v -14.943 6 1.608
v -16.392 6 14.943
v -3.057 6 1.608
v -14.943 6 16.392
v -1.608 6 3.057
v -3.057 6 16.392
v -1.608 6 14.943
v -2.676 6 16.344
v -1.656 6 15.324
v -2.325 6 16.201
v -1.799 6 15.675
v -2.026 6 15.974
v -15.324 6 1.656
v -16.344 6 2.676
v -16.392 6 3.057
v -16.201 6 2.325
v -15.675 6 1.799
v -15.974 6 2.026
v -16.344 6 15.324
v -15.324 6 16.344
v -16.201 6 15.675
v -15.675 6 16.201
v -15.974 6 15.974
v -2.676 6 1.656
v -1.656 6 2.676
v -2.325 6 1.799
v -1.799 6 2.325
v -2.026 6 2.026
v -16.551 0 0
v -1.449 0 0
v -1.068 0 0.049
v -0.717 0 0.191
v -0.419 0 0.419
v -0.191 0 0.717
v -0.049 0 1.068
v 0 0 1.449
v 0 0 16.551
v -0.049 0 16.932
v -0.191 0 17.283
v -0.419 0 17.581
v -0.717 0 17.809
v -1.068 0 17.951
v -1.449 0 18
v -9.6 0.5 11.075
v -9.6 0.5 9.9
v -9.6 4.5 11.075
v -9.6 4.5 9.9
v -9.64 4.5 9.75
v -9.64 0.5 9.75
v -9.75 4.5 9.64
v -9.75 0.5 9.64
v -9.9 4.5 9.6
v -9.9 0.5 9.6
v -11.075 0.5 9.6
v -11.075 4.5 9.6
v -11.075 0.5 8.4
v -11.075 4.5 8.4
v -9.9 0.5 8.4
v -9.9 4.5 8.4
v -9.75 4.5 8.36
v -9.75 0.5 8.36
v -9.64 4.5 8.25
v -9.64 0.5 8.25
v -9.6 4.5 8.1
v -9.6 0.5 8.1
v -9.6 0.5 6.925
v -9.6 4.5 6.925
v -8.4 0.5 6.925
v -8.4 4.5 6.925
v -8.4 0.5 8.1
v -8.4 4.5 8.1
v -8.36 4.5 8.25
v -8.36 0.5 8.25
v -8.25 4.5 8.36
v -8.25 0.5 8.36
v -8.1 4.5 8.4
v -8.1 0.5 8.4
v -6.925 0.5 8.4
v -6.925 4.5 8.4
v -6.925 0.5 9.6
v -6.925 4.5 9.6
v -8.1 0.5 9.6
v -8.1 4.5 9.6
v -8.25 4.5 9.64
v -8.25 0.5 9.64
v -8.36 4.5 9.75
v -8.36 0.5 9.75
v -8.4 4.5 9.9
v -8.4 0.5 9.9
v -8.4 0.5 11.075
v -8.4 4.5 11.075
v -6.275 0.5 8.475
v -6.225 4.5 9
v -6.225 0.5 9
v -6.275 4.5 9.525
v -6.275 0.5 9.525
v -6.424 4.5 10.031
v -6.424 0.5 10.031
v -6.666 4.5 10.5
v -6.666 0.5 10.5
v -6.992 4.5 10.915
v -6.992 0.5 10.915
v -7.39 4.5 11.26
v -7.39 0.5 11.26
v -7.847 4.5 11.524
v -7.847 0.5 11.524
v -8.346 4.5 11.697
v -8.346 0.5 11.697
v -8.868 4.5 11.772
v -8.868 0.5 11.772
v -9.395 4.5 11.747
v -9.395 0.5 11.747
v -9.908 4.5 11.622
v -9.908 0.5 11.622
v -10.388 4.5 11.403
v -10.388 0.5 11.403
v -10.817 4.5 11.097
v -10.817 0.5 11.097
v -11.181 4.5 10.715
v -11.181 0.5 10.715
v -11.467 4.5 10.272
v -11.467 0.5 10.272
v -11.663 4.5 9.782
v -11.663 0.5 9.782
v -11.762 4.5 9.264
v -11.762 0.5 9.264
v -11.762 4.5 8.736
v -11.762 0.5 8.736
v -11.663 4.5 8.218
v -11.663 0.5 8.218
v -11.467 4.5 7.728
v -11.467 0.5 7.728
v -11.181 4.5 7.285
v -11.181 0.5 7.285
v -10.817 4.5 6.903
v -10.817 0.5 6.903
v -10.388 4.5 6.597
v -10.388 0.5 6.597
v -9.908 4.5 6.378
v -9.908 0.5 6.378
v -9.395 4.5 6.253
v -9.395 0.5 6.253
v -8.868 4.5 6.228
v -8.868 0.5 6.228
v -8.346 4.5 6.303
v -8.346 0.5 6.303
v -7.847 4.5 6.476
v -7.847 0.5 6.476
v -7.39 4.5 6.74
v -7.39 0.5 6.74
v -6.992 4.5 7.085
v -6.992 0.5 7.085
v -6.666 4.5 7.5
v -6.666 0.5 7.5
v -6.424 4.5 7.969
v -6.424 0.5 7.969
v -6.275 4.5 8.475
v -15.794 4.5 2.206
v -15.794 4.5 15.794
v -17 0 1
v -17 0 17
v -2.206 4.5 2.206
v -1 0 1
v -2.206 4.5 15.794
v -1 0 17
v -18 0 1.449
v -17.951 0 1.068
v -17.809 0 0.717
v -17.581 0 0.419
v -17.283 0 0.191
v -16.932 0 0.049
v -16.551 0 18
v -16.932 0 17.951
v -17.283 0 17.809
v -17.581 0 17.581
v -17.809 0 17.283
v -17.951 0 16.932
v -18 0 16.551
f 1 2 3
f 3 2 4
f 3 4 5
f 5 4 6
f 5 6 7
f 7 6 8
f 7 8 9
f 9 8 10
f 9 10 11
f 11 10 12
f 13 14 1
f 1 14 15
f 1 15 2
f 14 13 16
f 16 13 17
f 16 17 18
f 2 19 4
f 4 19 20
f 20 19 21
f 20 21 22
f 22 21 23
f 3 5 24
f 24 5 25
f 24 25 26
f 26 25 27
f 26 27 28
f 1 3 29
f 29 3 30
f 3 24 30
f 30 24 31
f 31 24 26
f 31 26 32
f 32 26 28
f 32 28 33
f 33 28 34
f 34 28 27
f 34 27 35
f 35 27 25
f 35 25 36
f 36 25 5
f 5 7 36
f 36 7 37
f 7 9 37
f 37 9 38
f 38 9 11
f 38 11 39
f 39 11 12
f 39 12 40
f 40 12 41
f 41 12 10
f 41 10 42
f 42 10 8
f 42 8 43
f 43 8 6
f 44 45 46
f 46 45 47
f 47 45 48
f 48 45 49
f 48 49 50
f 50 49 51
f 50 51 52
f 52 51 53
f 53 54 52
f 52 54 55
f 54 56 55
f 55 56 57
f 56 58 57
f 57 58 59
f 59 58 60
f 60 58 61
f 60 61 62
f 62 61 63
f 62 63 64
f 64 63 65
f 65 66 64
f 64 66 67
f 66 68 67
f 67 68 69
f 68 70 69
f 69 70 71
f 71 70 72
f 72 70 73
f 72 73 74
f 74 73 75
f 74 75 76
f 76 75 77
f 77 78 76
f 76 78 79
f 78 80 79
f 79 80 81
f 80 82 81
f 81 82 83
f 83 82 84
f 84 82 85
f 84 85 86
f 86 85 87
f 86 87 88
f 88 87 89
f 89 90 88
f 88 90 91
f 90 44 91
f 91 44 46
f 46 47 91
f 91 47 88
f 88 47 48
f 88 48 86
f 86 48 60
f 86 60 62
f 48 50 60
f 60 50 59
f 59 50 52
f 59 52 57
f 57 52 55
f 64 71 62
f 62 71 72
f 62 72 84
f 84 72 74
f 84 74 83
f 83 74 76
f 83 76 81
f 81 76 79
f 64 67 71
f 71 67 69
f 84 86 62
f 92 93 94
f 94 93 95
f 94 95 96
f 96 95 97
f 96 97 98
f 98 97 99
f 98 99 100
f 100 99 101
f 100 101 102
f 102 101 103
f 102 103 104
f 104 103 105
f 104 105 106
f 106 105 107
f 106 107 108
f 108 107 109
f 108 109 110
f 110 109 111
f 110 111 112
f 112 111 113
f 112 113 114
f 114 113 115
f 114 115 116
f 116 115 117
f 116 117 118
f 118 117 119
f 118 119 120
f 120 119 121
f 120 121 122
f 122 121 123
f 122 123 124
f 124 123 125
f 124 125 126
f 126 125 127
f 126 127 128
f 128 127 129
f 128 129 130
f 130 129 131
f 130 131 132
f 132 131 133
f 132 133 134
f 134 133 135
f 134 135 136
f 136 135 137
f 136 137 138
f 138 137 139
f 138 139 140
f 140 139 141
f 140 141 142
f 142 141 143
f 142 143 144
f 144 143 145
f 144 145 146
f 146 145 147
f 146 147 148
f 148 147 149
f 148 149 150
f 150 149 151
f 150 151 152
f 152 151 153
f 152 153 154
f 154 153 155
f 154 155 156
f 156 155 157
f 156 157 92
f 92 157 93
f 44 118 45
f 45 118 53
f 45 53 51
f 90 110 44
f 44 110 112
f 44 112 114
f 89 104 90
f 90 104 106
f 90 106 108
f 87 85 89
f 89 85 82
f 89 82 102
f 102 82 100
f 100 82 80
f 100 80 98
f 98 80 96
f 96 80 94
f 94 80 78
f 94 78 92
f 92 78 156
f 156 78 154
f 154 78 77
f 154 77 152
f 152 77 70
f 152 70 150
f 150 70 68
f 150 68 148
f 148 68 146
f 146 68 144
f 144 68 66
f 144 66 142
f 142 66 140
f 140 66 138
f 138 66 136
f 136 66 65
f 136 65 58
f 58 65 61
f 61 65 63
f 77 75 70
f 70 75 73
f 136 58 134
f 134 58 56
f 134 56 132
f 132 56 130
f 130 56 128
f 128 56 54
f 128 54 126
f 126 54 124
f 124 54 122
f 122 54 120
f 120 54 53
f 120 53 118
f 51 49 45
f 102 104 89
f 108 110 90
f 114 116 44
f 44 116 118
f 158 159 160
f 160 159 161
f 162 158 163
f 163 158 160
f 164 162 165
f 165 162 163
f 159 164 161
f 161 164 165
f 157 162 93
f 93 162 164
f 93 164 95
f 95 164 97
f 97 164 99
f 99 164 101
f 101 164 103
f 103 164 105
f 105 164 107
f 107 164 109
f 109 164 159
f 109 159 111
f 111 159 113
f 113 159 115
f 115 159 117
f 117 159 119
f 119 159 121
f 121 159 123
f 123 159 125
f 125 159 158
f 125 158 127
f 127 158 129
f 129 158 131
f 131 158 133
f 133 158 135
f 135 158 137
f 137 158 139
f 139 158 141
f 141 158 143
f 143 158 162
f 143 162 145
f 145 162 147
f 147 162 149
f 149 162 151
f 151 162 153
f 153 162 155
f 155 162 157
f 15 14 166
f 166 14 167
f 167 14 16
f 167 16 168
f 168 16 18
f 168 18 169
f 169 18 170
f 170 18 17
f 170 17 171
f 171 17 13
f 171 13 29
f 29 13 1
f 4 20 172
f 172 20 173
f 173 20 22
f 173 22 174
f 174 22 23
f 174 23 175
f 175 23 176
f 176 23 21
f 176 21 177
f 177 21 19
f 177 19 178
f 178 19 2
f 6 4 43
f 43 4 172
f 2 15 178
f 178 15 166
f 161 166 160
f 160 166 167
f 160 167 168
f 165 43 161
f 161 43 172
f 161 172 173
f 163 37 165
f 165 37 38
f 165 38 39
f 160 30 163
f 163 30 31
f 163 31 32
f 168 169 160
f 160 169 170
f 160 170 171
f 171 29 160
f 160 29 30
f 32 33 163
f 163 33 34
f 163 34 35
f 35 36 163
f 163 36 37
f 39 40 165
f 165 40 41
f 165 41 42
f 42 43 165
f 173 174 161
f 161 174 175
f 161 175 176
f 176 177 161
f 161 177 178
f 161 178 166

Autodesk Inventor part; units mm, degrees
ref_plane "YZ Plane" through (0, 0, 0) normal (1, 0, 0) x (0, 1, 0)
ref_plane "XZ Plane" through (0, 0, 0) normal (0, 1, 0) x (-1, 0, 0)
sketch "Sketch1" plane through (0, 0, 0) normal (0, 1, 0) x (-1, 0, 0)
  line L0 (0, 0) -> (18, 0)
  line L1 (18, 0) -> (18, 18)
  line L2 (18, 18) -> (0, 18)
  line L3 (0, 18) -> (0, 0)
  dimension "d0" = 18
  dimension "d1" = 18
extrude "Extrusion1" add sketch "Sketch1" along normal blind 8 draft -15
fillet "Fillet1" radius 1.5 8 edges at (-1.0718, 4, 16.9282) (-9, 8, 15.8564) (-2.1436, 8, 9) (-9, 8, 2.1436) (-1.0718, 4, 1.0718) (-16.9282, 4, 1.0718) (-16.9282, 4, 16.9282) (-15.8564, 8, 9)
ref_plane "Work Plane1" through (-9, 33.5885, 16.5511) normal (1, 0, 0) x (0, 0, -1)
sketch "Sketch2" plane through (-9, 33.5885, 16.5511) normal (1, 0, 0) x (0, 0, -1)
  line L0 (13.2565, -25.5885) -> (1.8457, -25.5885) projected
  arc A0 (14.7054, -26.7002) -> (13.2565, -25.5885) centre (13.2565, -27.0885) ccw projected
  arc A1 (1.8457, -25.5885) -> (13.2565, -25.5885) centre (7.5511, -8.5166) ccw
  point P0 (16.5511, -33.5885)
  point P1 (13.2565, -25.5885)
  dimension "d5" = 18
extrude "Extrusion2" cut sketch "Sketch2" along normal through all both and the other way through all
sketch "Sketch3" plane through (0, 0, 0) normal (0, -1, 0) x (1, 0, 0)
  line L0 (-16.5511, 18) -> (-1.4489, 18) construction
  line L1 (-9, 18) -> (-9, 0) construction
  line L2 (-1.4489, 0) -> (-16.5511, 0) construction
  line L3 (-18, 1.4489) -> (-18, 16.5511) construction
  line L4 (-18, 9) -> (0, 9) construction
  line L5 (-1, 1) -> (-17, 1)
  line L6 (-17, 1) -> (-17, 17)
  line L7 (-17, 17) -> (-1, 17)
  line L8 (-1, 17) -> (-1, 1)
  line L9 (-1, 1) -> (-17, 17) construction
  line L10 (-17, 1) -> (-1, 17) construction
  point P0 (0, 0)
  point P1 (-9, 9)
  point P2 (-9, 9)
  dimension "d8" = 16
  dimension "d9" = 16
extrude "Extrusion3" cut sketch "Sketch3" against normal blind 4.5 draft -15
sketch "Sketch4" plane through (0, 4.5, 0) normal (0, -1, 0) x (1, 0, 0)
  line L0 (-15.7942, 15.7942) -> (-15.7942, 2.2058) construction
  line L1 (-15.7942, 9) -> (-2.2058, 9) construction
  line L2 (-2.2058, 2.2058) -> (-2.2058, 15.7942) construction
  line L3 (-2.2058, 15.7942) -> (-15.7942, 15.7942) construction
  line L4 (-9, 15.7942) -> (-9, 2.2058) construction
  line L5 (-15.7942, 2.2058) -> (-2.2058, 2.2058) construction
  circle A0 centre (-9, 9) radius 2.775
  point P0 (0, 0)
  dimension "d12" = 5.55
extrude "Extrusion4" add sketch "Sketch4" along normal blind 4
sketch "Sketch5" plane through (-9, 0.5, 9) normal (0, -1, 0) x (1, 0, 0)
  line L0 (0.6, 2.075) -> (-0.6, 2.075)
  line L1 (-0.6, -2.075) -> (0.6, -2.075)
  line L2 (-0.6, 2.075) -> (0.6, -2.075) construction
  line L3 (-2.075, 0.6) -> (-2.075, -0.6)
  line L4 (2.075, -0.6) -> (2.075, 0.6)
  line L5 (2.075, 0.6) -> (-2.075, -0.6) construction
  line L6 (-2.075, 0.6) -> (2.075, -0.6) construction
  line L7 (-6.7942, 6.7942) -> (-6.7942, -6.7942) construction
  line L8 (-6.7942, 0) -> (6.7942, 0) construction
  line L9 (6.7942, -6.7942) -> (6.7942, 6.7942) construction
  line L10 (-6.7942, -6.7942) -> (6.7942, -6.7942) construction
  line L11 (0, -6.7942) -> (0, 6.7942) construction
  arc A0 (0.9, -0.6) -> (0.6, -0.9) centre (0.9, -0.9) ccw
  arc A1 (-0.6, -0.9) -> (-0.9, -0.6) centre (-0.9, -0.9) ccw
  arc A2 (0.6, 0.9) -> (0.9, 0.6) centre (0.9, 0.9) ccw
  arc A3 (-0.9, 0.6) -> (-0.6, 0.9) centre (-0.9, 0.9) ccw
  line L12 (-0.6, 2.075) -> (-0.6, 0.9)
  line L13 (-0.6, -0.9) -> (-0.6, -2.075)
  line L14 (-2.075, -0.6) -> (-0.9, -0.6)
  line L15 (-0.9, 0.6) -> (-2.075, 0.6)
  line L16 (0.6, 2.075) -> (0.1735, 0.6) construction
  line L17 (0, 0) -> (-0.6, -2.075) construction
  line L18 (2.075, 0.6) -> (0.9, 0.6)
  line L19 (0.9, -0.6) -> (2.075, -0.6)
  line L20 (0.6, -2.075) -> (0.6, -0.9)
  line L21 (0.6, 0.9) -> (0.6, 2.075)
  point P0 (9, -9)
  dimension "d15" = 1.2
  dimension "d16" = 4.15
  dimension "d17" = 4.15
  dimension "d18" = 1.2
  dimension "d19" = 0.3
extrude "Extrusion5" cut sketch "Sketch5" against normal blind 4
ref_plane "Work Plane3" through (0, 6, 0) normal (0, -1, 0) x (1, 0, 0)
split_face "Split1"
sketch "Sketch7" plane through (0, 6, 0) normal (0, -1, 0) x (1, 0, 0)
  line L0 (-25.6931, 27.6788) -> (12.1363, 27.6788)
  line L1 (12.1363, 27.6788) -> (12.1363, -37.3947)
  line L2 (12.1363, -37.3947) -> (-25.6931, -37.3947)
  line L3 (-25.6931, -37.3947) -> (-25.6931, 27.6788)
  point P0 (0, 0)
extrude "Extrusion7" cut sketch "Sketch7" against normal blind 10
properties part number "bottom"
